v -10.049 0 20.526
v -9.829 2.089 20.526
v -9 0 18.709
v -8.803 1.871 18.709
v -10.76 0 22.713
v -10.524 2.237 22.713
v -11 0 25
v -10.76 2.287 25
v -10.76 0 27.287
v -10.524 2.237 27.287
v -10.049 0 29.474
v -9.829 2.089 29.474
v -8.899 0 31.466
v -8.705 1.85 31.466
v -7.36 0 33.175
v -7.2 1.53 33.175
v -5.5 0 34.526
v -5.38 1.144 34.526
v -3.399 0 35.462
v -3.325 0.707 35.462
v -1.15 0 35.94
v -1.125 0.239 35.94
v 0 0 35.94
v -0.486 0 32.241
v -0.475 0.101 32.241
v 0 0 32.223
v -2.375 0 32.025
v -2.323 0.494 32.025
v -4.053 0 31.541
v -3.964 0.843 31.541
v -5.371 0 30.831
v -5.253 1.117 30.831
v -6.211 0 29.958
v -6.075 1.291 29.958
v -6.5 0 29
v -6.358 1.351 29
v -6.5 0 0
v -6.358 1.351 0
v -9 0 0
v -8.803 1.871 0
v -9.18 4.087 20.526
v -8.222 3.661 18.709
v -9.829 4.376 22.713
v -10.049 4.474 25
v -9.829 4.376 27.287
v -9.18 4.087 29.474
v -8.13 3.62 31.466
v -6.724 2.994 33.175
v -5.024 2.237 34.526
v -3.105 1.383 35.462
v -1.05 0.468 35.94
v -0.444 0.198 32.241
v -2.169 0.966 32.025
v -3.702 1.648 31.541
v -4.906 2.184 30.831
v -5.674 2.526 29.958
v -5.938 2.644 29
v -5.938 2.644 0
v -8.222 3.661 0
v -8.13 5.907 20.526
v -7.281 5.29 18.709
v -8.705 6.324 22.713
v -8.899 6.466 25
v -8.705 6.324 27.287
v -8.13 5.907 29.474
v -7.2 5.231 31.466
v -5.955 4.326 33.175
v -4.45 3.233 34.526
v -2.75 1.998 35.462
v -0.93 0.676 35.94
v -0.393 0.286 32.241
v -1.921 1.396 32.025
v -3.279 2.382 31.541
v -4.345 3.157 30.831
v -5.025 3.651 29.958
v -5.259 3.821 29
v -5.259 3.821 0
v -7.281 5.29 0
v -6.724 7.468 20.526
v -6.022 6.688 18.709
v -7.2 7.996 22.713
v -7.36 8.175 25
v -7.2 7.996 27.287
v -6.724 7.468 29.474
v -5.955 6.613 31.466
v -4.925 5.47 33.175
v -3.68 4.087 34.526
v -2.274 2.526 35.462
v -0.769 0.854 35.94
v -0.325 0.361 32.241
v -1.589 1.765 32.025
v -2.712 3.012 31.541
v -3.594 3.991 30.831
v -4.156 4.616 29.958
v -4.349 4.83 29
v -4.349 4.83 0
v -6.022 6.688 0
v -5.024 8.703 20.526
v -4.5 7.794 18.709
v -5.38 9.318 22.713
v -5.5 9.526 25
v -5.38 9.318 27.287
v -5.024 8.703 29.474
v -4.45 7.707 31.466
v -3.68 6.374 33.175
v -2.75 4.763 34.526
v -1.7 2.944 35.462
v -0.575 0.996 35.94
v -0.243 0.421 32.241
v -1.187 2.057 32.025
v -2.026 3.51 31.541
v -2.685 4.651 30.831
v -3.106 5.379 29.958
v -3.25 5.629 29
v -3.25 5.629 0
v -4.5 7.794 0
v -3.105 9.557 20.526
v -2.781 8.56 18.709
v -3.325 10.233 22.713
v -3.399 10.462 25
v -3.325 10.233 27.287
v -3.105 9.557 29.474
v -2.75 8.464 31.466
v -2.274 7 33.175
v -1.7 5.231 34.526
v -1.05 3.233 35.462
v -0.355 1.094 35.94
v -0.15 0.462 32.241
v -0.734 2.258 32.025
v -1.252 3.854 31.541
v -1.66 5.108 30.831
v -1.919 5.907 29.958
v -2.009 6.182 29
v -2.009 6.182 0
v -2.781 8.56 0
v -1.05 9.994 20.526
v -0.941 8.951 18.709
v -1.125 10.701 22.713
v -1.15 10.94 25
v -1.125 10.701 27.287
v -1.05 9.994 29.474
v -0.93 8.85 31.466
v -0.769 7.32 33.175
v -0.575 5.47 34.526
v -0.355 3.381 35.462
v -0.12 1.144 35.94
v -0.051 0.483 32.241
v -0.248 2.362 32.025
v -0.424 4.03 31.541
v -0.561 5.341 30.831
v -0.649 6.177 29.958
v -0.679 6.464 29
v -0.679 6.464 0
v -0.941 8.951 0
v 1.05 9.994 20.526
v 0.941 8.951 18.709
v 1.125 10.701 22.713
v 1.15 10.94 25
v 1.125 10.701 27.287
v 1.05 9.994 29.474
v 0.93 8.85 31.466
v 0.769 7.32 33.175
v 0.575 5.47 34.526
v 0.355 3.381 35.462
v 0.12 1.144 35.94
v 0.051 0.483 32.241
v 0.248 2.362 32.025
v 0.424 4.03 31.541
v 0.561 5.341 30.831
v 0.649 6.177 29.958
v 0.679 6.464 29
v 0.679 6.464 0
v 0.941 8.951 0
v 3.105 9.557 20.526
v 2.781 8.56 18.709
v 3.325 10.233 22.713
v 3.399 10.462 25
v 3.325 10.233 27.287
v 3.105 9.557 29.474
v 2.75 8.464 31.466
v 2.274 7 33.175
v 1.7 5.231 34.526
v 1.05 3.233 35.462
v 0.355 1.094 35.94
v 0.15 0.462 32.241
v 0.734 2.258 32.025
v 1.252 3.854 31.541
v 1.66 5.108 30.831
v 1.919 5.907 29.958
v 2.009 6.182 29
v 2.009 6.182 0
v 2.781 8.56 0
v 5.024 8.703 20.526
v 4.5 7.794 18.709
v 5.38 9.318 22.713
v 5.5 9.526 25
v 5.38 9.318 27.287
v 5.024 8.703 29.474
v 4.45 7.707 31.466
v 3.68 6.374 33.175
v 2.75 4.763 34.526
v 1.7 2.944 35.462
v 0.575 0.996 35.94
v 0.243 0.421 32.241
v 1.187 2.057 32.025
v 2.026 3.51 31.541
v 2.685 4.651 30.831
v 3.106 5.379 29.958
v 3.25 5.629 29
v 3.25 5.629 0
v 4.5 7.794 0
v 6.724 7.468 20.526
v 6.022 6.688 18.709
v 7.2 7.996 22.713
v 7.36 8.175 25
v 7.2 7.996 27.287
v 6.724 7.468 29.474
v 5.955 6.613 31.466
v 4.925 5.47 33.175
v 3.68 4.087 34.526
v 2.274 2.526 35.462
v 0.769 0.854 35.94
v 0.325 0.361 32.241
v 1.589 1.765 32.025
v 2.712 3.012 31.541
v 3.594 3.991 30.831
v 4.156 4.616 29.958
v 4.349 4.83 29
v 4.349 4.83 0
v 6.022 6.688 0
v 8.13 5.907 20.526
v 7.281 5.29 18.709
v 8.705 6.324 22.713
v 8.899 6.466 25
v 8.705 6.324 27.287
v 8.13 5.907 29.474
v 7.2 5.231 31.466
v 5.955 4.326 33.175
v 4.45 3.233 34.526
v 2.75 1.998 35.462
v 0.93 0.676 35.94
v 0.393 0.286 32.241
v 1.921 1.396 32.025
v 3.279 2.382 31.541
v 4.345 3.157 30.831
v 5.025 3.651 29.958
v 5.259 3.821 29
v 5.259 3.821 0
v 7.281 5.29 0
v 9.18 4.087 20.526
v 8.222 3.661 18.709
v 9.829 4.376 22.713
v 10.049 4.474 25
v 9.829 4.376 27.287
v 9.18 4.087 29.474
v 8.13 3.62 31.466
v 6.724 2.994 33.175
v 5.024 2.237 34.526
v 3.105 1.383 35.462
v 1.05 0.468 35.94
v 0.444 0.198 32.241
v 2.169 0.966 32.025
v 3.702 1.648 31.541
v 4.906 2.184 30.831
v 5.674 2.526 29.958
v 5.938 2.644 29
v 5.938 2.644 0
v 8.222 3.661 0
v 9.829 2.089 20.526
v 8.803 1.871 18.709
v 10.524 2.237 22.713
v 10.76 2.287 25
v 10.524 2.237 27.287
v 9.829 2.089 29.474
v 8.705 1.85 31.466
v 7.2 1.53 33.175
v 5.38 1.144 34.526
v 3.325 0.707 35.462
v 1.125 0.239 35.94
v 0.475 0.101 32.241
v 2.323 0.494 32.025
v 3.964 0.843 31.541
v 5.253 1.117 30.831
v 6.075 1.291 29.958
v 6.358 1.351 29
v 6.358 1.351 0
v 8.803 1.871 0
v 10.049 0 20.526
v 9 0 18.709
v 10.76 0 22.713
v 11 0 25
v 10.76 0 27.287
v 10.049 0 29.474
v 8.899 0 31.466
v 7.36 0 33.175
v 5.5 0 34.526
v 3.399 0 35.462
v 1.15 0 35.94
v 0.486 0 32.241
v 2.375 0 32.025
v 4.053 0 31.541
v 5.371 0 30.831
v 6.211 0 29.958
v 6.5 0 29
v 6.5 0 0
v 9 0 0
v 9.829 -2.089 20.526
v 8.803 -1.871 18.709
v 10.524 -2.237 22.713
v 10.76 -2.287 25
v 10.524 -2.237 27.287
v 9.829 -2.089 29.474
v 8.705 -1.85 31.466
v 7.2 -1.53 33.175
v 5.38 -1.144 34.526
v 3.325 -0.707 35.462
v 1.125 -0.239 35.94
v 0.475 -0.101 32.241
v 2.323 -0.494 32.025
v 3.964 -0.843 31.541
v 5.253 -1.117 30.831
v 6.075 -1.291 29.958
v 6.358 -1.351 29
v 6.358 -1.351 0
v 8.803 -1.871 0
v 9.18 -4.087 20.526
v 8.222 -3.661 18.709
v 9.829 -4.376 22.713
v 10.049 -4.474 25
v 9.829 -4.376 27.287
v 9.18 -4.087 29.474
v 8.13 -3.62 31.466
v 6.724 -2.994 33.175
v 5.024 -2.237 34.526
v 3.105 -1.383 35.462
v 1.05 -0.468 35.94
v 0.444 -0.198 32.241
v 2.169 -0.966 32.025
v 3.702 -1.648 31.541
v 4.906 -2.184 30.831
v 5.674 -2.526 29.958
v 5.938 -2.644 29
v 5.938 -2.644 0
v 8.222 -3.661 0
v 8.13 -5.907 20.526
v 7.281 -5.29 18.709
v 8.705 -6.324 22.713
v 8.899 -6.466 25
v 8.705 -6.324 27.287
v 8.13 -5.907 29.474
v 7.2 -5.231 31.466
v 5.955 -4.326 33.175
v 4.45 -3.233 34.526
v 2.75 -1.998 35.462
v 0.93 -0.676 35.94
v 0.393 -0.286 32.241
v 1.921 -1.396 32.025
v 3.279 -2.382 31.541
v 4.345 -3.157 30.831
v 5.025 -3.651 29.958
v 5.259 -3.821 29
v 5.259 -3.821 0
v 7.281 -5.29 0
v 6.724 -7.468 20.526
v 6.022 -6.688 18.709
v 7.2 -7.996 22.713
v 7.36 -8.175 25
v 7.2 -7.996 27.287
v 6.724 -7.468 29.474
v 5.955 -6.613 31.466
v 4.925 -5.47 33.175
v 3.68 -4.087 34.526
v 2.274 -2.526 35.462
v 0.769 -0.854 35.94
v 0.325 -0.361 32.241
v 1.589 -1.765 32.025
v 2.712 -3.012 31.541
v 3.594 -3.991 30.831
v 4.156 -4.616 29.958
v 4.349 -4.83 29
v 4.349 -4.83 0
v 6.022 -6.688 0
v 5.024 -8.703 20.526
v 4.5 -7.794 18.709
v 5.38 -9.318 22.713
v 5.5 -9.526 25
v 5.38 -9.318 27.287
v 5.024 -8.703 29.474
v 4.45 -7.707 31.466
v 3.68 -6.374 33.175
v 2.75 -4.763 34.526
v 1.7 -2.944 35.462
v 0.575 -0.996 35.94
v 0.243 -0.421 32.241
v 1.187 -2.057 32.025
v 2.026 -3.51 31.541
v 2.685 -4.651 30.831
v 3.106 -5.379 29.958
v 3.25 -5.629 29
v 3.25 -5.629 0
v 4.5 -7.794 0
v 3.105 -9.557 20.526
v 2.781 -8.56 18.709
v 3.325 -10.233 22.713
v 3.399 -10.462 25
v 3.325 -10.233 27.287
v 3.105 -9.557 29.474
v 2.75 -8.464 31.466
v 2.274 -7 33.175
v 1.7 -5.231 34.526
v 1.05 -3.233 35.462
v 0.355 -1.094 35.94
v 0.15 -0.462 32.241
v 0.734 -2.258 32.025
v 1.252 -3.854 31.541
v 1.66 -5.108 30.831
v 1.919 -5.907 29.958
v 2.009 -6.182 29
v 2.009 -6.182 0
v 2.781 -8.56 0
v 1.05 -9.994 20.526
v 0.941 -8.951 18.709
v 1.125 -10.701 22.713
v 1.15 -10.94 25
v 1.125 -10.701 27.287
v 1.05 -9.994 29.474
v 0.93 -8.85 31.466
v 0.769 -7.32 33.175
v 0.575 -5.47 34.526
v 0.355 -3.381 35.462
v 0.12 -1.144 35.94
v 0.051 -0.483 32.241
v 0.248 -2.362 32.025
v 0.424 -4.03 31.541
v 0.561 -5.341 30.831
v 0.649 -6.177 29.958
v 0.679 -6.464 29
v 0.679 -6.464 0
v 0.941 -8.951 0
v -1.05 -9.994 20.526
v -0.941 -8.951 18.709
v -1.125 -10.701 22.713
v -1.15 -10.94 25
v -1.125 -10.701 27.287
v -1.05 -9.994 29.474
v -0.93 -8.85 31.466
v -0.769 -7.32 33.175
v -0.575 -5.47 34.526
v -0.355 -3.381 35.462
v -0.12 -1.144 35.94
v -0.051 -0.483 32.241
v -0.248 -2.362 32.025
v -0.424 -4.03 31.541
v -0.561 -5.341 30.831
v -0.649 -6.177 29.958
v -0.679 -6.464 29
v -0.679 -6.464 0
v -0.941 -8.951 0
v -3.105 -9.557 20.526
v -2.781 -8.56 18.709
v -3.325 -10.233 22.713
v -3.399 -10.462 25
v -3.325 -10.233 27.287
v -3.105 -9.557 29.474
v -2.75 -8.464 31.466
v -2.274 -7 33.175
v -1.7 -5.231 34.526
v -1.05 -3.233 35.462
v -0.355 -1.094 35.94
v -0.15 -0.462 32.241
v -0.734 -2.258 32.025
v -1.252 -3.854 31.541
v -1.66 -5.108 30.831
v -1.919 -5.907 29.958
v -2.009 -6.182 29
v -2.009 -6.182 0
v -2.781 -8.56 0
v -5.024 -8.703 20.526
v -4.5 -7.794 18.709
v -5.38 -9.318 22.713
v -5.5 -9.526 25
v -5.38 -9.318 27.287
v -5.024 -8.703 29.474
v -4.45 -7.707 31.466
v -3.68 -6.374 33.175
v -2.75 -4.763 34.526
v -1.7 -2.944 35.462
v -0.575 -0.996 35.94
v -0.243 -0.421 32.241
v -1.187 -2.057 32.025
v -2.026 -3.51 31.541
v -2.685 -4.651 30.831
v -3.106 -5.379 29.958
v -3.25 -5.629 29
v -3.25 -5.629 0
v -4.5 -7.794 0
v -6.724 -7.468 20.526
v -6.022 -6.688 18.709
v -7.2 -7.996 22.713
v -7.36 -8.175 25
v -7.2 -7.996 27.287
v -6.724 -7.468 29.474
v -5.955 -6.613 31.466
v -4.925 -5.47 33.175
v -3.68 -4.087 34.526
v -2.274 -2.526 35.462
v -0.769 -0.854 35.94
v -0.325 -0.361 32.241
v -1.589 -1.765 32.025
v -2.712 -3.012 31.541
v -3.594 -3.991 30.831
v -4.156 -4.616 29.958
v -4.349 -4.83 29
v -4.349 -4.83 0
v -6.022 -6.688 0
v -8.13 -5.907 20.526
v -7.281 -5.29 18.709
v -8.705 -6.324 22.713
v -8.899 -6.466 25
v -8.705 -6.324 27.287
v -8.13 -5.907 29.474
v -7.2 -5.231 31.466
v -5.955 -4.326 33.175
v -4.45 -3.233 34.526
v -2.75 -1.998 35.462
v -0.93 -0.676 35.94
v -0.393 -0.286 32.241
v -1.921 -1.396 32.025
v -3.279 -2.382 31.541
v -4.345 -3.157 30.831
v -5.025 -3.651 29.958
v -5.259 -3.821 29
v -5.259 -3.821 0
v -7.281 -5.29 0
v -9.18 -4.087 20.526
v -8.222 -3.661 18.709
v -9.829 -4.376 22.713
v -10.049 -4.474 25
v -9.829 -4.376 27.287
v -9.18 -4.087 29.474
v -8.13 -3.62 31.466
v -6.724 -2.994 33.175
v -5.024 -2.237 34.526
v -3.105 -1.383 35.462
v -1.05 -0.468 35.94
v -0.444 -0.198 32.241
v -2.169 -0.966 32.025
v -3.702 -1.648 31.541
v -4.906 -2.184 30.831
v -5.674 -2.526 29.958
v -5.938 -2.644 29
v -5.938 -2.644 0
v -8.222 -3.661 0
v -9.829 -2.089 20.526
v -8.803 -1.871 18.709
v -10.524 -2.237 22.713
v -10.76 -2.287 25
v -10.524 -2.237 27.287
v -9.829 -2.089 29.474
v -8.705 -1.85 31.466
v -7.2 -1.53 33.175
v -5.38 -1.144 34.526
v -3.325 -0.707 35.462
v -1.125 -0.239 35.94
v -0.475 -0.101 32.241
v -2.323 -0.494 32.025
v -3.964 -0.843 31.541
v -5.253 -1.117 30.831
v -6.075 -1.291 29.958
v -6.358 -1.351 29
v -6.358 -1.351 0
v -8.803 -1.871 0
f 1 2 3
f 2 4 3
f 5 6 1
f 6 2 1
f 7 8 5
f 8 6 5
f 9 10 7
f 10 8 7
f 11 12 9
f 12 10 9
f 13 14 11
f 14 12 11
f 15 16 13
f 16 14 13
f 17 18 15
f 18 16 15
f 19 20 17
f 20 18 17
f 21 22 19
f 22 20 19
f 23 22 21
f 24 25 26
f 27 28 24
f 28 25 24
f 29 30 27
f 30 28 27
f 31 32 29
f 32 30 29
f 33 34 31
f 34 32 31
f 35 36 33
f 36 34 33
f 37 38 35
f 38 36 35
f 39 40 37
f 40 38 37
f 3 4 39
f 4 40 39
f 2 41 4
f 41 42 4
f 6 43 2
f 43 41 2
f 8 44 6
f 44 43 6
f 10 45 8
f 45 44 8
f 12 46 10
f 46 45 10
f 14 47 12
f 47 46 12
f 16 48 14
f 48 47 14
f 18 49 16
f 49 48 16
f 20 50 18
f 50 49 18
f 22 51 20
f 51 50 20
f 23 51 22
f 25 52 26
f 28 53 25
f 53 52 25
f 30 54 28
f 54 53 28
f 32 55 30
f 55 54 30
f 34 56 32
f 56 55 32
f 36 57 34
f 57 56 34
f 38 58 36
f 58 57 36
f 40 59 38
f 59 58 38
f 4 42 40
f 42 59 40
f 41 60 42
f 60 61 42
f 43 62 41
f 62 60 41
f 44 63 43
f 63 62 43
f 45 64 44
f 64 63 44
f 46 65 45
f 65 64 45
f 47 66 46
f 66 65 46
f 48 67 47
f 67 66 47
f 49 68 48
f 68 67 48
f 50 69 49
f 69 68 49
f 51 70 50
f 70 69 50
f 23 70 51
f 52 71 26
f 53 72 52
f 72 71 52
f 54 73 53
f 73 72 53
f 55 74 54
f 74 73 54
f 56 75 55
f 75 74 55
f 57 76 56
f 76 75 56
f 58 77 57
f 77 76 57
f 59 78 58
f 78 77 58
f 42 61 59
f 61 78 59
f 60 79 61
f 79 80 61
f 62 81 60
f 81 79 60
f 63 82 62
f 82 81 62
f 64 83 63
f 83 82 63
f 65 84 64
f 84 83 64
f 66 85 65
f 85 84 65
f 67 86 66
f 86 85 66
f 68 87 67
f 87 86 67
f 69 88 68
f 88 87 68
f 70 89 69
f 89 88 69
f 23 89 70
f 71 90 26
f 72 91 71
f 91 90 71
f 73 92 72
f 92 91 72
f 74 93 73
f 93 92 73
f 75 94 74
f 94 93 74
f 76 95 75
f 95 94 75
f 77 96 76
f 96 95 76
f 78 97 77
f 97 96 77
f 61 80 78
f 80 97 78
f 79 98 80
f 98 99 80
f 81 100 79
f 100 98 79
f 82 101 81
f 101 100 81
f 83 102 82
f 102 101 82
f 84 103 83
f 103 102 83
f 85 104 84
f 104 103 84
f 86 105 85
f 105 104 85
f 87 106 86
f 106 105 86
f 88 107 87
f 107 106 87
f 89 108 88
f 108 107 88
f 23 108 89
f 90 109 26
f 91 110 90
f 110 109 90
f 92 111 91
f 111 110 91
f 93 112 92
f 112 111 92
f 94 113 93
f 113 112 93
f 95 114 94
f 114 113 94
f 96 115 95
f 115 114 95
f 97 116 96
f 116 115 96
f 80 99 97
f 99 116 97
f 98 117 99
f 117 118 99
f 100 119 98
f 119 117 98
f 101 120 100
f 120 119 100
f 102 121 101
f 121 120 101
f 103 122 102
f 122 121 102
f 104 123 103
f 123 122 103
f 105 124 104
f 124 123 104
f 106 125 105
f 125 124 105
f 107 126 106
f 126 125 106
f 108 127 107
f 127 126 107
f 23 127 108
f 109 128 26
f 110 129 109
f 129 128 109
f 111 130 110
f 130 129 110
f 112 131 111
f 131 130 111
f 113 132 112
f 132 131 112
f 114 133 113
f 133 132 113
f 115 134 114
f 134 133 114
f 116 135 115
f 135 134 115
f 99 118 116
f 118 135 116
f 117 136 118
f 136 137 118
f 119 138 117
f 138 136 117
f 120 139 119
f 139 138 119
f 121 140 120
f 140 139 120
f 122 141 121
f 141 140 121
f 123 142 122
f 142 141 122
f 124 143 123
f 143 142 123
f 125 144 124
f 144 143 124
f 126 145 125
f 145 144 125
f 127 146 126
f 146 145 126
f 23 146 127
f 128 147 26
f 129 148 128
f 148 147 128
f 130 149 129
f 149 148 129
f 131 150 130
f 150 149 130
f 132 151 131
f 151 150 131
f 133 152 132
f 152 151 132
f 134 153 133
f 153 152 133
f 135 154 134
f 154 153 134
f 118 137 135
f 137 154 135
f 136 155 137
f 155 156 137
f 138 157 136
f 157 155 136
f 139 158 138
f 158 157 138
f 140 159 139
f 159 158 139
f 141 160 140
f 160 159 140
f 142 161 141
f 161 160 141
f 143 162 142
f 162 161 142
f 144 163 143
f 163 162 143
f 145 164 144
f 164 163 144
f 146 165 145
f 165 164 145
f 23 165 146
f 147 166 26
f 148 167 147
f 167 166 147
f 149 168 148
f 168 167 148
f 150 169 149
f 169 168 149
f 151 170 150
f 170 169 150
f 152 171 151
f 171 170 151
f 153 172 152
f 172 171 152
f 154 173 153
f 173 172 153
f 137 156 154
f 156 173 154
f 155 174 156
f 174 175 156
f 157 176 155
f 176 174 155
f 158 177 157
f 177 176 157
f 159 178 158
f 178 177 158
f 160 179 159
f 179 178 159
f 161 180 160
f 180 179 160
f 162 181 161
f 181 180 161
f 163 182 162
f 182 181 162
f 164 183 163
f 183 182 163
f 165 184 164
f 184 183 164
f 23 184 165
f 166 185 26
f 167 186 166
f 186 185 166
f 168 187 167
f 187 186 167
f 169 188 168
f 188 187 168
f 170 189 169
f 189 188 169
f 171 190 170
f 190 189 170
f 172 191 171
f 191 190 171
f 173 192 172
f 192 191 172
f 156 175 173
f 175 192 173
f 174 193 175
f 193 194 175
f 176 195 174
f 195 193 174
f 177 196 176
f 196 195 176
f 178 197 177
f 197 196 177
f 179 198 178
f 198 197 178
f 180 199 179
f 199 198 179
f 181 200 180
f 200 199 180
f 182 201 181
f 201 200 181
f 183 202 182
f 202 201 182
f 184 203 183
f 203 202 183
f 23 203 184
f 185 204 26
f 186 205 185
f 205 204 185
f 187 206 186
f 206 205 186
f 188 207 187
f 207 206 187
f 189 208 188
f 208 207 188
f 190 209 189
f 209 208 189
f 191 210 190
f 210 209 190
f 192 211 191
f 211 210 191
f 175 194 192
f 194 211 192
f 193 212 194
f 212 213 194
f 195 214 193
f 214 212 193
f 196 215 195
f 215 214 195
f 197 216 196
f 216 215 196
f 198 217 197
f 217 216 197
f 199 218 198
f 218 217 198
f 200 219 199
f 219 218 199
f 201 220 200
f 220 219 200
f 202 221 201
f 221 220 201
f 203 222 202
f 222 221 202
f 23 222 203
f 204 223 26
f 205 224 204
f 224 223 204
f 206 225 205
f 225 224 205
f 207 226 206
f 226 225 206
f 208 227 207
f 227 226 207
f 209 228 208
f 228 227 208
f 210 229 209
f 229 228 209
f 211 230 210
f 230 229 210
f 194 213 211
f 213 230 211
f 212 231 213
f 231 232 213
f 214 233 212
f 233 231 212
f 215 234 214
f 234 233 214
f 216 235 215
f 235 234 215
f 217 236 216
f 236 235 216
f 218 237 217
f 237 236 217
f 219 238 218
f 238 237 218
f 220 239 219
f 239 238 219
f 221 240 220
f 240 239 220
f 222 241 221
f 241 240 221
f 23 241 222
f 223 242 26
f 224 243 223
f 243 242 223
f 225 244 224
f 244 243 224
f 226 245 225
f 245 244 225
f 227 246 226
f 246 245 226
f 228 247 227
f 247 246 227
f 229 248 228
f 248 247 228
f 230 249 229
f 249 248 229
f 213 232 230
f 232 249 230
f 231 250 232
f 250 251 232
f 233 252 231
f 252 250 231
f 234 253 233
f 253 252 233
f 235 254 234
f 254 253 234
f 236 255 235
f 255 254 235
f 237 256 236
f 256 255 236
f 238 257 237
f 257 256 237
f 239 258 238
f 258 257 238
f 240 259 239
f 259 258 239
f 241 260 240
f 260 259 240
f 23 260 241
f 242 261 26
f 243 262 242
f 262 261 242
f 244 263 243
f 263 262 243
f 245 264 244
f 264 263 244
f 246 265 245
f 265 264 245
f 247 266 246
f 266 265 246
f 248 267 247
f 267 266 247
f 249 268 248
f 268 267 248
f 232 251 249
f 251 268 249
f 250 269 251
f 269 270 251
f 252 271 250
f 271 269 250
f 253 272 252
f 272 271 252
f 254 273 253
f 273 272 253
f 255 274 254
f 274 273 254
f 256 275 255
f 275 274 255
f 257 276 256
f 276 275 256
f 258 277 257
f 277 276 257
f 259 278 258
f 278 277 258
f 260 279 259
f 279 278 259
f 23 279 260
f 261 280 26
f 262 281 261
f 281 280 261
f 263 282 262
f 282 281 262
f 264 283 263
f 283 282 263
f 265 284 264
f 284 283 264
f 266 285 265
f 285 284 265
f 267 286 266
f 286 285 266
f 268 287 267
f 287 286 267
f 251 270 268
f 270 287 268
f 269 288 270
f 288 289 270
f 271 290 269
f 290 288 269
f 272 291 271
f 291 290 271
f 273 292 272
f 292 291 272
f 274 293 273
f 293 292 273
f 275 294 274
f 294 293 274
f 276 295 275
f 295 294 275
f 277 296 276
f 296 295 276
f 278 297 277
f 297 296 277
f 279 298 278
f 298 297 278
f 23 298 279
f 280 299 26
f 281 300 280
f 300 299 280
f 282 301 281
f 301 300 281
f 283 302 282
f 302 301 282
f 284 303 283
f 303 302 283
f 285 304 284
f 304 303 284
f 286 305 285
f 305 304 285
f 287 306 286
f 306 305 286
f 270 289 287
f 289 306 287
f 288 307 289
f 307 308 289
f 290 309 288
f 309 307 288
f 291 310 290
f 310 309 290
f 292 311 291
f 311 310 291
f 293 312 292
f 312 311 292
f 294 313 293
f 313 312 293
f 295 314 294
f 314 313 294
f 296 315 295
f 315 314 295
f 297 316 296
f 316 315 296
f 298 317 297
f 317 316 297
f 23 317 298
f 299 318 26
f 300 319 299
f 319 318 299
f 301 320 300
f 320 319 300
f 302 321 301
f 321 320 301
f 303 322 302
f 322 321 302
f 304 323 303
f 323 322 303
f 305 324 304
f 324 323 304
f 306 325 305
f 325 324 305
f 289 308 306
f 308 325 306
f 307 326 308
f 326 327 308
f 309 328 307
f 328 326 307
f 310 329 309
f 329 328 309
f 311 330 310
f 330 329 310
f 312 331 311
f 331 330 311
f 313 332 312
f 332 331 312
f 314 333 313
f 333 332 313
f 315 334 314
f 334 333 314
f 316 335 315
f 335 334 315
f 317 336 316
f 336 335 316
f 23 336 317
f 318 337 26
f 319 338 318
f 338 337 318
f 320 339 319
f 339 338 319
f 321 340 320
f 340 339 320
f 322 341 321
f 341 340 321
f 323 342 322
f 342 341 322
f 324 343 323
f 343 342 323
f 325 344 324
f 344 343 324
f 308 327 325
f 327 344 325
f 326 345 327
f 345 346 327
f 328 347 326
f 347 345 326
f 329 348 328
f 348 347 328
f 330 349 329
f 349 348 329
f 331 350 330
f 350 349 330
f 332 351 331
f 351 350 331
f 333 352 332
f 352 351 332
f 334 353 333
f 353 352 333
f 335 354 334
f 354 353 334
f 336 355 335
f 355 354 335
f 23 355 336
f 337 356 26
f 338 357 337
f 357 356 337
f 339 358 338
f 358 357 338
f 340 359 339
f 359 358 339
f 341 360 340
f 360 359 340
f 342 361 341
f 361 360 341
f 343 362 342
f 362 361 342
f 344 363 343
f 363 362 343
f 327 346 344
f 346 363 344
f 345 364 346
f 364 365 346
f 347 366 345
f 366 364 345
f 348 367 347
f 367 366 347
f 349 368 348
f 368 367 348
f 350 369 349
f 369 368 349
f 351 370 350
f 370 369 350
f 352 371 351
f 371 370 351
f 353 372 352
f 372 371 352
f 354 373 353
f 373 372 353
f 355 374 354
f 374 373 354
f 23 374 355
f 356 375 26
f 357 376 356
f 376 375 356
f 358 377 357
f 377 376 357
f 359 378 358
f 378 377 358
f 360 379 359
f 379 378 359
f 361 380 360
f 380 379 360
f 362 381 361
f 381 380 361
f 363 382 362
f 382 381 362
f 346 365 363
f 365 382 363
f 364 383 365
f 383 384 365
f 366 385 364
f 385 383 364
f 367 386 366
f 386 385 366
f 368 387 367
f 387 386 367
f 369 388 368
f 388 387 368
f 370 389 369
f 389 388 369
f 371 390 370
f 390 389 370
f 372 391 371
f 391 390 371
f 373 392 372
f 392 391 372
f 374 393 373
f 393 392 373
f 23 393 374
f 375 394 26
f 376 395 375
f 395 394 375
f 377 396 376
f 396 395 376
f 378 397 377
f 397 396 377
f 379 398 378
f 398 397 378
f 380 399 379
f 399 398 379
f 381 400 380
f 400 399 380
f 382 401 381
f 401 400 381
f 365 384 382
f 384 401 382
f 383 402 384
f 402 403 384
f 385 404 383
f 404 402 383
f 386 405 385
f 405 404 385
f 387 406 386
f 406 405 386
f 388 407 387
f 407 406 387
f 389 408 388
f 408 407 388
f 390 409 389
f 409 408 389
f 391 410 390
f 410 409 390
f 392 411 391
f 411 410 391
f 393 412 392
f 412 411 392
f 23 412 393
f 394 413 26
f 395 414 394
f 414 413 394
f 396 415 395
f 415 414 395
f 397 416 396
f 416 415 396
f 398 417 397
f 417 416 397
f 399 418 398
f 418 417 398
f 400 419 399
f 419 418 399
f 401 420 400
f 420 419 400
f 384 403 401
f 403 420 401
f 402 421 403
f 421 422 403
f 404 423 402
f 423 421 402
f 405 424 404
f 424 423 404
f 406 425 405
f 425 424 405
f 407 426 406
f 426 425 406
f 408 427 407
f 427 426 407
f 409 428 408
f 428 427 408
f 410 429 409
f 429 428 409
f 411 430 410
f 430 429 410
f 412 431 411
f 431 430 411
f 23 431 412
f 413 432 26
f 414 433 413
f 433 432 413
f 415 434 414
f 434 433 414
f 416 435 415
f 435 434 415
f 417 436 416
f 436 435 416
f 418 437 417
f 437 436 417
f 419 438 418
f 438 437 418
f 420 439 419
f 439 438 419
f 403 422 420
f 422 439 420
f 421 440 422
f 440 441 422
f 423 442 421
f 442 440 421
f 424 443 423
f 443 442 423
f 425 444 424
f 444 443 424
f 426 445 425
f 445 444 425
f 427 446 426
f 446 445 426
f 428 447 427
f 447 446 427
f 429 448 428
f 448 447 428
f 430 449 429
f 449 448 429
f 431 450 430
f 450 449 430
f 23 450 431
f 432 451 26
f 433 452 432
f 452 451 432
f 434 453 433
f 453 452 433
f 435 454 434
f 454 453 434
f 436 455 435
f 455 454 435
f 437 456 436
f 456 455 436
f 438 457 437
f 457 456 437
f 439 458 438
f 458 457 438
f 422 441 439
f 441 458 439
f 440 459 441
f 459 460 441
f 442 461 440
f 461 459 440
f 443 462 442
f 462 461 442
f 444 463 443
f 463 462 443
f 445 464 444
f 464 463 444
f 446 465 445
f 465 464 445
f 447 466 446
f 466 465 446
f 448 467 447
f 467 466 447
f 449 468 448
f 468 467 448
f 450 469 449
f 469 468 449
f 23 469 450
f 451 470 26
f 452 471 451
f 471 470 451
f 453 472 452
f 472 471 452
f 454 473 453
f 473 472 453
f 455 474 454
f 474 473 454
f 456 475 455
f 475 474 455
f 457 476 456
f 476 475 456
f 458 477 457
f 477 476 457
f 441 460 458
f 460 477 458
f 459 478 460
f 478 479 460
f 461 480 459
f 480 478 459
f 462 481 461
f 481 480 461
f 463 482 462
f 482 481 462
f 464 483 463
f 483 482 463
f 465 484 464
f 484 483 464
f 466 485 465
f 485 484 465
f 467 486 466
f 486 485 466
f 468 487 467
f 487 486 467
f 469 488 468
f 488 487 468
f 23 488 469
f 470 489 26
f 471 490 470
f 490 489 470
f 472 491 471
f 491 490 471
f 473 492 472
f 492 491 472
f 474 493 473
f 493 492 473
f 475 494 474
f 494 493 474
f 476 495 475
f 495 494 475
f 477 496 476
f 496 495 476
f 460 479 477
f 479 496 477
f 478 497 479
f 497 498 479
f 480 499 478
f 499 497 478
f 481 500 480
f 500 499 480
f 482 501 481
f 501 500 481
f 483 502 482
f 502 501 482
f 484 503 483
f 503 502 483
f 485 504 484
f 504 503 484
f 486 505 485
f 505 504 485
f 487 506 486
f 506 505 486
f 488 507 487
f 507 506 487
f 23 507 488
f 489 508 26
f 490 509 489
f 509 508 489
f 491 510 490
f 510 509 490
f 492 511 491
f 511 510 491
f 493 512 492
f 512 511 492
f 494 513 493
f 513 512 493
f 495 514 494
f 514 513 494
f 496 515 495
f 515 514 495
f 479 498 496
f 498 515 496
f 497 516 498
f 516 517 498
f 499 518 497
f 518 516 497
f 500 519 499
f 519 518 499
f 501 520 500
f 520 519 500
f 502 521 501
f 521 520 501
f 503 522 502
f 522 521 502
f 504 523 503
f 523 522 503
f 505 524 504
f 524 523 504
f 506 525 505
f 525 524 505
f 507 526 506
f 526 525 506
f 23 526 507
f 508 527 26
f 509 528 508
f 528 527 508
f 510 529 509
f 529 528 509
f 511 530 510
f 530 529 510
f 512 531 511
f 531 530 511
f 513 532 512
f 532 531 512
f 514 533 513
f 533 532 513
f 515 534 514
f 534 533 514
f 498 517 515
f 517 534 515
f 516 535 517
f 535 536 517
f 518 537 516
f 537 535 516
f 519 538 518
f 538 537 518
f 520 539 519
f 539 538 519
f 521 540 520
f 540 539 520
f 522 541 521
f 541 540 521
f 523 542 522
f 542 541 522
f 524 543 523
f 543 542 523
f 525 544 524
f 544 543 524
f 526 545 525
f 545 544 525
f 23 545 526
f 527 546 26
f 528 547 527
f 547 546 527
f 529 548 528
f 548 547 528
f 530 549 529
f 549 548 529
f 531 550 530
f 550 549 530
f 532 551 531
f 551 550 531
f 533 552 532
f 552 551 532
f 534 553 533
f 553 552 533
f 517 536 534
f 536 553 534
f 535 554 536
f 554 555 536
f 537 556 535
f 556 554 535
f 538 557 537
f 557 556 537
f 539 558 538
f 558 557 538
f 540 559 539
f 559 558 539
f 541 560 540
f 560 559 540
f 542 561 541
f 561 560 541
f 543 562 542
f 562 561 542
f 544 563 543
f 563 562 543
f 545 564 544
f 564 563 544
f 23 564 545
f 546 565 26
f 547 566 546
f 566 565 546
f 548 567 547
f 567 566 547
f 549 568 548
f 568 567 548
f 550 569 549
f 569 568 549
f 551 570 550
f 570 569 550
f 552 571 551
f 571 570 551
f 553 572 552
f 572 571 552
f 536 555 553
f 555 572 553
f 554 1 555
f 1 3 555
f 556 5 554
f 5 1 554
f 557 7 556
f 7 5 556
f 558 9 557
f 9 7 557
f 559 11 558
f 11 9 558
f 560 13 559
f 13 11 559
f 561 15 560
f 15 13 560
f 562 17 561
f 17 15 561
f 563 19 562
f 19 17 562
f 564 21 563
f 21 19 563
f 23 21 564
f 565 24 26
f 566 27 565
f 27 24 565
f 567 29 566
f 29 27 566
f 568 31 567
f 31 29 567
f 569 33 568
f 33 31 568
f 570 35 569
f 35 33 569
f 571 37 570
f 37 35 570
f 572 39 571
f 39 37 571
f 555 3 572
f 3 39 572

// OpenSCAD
rotate_extrude() {
	translate([0,25,0]){
		difference() {
				union() {	
					circle(r=11);
					translate([0,-12.5,0]) square(size=[18,25], center=true);
				}

				union() {
					scale([1,0.5,1]) translate([0,8,0]) circle(d=13);
					translate([0,-12.5,0]) square(size=[13,33], center=true);
					translate([-15,0,0])     square(size=[30,100], center=true);
				}
		}
	}
}
